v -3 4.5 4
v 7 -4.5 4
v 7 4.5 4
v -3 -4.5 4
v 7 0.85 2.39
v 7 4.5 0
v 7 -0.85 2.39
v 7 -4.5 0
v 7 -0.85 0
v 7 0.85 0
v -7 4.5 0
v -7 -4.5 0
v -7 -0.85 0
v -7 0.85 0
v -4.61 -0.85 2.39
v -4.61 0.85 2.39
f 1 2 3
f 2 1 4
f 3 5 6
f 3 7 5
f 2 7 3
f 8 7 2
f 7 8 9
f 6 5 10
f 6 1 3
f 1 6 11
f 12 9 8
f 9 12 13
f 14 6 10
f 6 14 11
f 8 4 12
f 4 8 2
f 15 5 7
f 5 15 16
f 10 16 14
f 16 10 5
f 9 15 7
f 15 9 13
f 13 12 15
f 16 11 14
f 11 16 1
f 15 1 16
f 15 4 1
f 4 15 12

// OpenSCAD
baseDims = [14, 9, 4];
grooveYZ = [baseDims.x+2, 1.7, 2.4]; // 0 = placeholder
endAng = -45;

length = 14;
height = 4;


trigger_support();

module trigger_support()
{
    difference()
    {
        translate([0, 0, baseDims.z/2])
        cube(baseDims, center=true);
        
        translate([0, 0, grooveYZ.z/2-0.01])
        cube(grooveYZ, center=true);
        
        translate([-baseDims.x/2, -baseDims.y/2-1, 0])
        rotate([0, endAng, 0])
        cube([baseDims.x, baseDims.y+2, baseDims.z]);
    }
}
